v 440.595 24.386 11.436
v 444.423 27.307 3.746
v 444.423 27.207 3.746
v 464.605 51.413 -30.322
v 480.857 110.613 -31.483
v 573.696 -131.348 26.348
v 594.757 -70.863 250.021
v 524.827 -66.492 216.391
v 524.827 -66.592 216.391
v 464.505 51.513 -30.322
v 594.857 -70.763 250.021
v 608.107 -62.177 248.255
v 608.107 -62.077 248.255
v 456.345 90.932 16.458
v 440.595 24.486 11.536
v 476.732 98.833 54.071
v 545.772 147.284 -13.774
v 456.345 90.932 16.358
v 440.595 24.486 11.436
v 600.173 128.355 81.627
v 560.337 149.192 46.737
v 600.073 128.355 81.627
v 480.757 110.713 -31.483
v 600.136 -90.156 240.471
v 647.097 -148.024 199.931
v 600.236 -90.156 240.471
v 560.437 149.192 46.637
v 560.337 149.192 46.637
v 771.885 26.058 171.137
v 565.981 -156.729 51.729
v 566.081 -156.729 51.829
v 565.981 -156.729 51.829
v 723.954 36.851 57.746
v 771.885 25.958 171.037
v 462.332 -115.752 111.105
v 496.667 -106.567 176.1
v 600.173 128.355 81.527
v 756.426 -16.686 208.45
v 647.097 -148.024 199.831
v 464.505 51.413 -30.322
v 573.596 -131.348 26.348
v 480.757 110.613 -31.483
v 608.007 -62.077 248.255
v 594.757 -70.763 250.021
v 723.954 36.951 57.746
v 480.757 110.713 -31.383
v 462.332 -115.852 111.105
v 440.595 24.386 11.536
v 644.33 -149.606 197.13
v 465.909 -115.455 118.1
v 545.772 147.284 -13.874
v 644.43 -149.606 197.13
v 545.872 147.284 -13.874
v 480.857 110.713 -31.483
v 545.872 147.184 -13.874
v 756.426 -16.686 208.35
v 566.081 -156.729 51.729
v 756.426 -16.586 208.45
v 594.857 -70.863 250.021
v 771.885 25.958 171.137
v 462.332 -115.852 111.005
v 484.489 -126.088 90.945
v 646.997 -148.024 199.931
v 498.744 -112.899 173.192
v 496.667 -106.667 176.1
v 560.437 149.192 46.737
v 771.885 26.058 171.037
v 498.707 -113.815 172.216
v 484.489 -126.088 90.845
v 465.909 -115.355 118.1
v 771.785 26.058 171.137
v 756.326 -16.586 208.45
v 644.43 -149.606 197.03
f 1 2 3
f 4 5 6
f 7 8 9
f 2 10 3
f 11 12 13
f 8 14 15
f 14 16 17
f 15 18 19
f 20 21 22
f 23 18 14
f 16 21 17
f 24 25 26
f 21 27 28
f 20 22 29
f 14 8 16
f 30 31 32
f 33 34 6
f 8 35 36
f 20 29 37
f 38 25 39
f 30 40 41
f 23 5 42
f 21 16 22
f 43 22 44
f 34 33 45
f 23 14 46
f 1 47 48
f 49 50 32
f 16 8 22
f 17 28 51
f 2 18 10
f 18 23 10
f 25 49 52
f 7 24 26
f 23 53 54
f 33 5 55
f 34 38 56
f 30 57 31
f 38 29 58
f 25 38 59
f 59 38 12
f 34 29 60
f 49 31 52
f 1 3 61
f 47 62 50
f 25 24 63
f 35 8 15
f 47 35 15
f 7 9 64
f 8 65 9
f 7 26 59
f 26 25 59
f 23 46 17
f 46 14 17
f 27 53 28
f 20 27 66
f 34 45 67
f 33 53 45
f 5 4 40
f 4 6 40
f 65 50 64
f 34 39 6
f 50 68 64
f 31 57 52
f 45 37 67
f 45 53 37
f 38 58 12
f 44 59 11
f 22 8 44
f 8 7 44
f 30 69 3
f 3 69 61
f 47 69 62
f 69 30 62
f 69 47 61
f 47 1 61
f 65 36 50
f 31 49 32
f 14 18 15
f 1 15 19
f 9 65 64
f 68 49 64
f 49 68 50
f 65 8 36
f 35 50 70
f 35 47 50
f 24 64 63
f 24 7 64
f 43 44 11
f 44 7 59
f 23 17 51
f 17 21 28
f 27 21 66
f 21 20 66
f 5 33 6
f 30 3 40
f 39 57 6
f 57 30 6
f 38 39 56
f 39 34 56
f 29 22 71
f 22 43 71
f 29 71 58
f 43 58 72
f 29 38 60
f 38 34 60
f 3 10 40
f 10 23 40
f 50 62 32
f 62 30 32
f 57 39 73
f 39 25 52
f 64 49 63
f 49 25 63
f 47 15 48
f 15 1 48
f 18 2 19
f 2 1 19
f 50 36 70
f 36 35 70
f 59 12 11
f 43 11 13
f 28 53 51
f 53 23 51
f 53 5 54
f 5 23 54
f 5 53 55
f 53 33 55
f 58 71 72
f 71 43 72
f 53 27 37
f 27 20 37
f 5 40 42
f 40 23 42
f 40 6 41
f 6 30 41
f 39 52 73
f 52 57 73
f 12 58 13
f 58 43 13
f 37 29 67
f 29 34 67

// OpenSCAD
hull(){ translate([456.345241859,90.8314890926,16.3578880809])cube(0.1,0.1,0.1);
translate([644.32986337,-149.606376057,197.029928432])cube(0.1,0.1,0.1);
translate([646.996541122,-148.023635665,199.830899308])cube(0.1,0.1,0.1);
translate([565.981308411,-156.728971963,51.7289719626])cube(0.1,0.1,0.1);
translate([600.136065061,-90.1563966218,240.370659994])cube(0.1,0.1,0.1);
translate([476.73210893,98.7333755541,53.9708676377])cube(0.1,0.1,0.1);
translate([524.826904055,-66.5924826904,216.290801187])cube(0.1,0.1,0.1);
translate([594.756973212,-70.8630212648,249.921292461])cube(0.1,0.1,0.1);
translate([480.756521739,110.613043478,-31.4826086957])cube(0.1,0.1,0.1);
translate([464.505494505,51.4128728414,-30.3218210361])cube(0.1,0.1,0.1);
translate([573.595505618,-131.348314607,26.3483146067])cube(0.1,0.1,0.1);
translate([440.595181861,24.3859234766,11.4359943316])cube(0.1,0.1,0.1);
translate([444.423269809,27.2066198596,3.74623871615])cube(0.1,0.1,0.1);
translate([462.332058984,-115.851993446,111.004915347])cube(0.1,0.1,0.1);
translate([484.488859764,-126.087811271,90.8453473132])cube(0.1,0.1,0.1);
translate([608.007360673,-62.1766561514,248.154574132])cube(0.1,0.1,0.1);
translate([756.326383896,-16.685837527,208.350107836])cube(0.1,0.1,0.1);
translate([498.706720978,-113.814663951,172.116089613])cube(0.1,0.1,0.1);
translate([498.743961353,-112.898550725,173.09178744])cube(0.1,0.1,0.1);
translate([465.909090909,-115.454545455,118.0])cube(0.1,0.1,0.1);
translate([496.666666667,-106.666666667,176.0])cube(0.1,0.1,0.1);
translate([723.853904282,36.8513853904,57.7455919395])cube(0.1,0.1,0.1);
translate([771.784776903,25.9580052493,171.036745407])cube(0.1,0.1,0.1);
translate([545.772413793,147.184482759,-13.874137931])cube(0.1,0.1,0.1);
translate([560.336730173,149.091714665,46.6371289322])cube(0.1,0.1,0.1);
translate([600.072727273,128.254545455,81.5272727273])cube(0.1,0.1,0.1); }
